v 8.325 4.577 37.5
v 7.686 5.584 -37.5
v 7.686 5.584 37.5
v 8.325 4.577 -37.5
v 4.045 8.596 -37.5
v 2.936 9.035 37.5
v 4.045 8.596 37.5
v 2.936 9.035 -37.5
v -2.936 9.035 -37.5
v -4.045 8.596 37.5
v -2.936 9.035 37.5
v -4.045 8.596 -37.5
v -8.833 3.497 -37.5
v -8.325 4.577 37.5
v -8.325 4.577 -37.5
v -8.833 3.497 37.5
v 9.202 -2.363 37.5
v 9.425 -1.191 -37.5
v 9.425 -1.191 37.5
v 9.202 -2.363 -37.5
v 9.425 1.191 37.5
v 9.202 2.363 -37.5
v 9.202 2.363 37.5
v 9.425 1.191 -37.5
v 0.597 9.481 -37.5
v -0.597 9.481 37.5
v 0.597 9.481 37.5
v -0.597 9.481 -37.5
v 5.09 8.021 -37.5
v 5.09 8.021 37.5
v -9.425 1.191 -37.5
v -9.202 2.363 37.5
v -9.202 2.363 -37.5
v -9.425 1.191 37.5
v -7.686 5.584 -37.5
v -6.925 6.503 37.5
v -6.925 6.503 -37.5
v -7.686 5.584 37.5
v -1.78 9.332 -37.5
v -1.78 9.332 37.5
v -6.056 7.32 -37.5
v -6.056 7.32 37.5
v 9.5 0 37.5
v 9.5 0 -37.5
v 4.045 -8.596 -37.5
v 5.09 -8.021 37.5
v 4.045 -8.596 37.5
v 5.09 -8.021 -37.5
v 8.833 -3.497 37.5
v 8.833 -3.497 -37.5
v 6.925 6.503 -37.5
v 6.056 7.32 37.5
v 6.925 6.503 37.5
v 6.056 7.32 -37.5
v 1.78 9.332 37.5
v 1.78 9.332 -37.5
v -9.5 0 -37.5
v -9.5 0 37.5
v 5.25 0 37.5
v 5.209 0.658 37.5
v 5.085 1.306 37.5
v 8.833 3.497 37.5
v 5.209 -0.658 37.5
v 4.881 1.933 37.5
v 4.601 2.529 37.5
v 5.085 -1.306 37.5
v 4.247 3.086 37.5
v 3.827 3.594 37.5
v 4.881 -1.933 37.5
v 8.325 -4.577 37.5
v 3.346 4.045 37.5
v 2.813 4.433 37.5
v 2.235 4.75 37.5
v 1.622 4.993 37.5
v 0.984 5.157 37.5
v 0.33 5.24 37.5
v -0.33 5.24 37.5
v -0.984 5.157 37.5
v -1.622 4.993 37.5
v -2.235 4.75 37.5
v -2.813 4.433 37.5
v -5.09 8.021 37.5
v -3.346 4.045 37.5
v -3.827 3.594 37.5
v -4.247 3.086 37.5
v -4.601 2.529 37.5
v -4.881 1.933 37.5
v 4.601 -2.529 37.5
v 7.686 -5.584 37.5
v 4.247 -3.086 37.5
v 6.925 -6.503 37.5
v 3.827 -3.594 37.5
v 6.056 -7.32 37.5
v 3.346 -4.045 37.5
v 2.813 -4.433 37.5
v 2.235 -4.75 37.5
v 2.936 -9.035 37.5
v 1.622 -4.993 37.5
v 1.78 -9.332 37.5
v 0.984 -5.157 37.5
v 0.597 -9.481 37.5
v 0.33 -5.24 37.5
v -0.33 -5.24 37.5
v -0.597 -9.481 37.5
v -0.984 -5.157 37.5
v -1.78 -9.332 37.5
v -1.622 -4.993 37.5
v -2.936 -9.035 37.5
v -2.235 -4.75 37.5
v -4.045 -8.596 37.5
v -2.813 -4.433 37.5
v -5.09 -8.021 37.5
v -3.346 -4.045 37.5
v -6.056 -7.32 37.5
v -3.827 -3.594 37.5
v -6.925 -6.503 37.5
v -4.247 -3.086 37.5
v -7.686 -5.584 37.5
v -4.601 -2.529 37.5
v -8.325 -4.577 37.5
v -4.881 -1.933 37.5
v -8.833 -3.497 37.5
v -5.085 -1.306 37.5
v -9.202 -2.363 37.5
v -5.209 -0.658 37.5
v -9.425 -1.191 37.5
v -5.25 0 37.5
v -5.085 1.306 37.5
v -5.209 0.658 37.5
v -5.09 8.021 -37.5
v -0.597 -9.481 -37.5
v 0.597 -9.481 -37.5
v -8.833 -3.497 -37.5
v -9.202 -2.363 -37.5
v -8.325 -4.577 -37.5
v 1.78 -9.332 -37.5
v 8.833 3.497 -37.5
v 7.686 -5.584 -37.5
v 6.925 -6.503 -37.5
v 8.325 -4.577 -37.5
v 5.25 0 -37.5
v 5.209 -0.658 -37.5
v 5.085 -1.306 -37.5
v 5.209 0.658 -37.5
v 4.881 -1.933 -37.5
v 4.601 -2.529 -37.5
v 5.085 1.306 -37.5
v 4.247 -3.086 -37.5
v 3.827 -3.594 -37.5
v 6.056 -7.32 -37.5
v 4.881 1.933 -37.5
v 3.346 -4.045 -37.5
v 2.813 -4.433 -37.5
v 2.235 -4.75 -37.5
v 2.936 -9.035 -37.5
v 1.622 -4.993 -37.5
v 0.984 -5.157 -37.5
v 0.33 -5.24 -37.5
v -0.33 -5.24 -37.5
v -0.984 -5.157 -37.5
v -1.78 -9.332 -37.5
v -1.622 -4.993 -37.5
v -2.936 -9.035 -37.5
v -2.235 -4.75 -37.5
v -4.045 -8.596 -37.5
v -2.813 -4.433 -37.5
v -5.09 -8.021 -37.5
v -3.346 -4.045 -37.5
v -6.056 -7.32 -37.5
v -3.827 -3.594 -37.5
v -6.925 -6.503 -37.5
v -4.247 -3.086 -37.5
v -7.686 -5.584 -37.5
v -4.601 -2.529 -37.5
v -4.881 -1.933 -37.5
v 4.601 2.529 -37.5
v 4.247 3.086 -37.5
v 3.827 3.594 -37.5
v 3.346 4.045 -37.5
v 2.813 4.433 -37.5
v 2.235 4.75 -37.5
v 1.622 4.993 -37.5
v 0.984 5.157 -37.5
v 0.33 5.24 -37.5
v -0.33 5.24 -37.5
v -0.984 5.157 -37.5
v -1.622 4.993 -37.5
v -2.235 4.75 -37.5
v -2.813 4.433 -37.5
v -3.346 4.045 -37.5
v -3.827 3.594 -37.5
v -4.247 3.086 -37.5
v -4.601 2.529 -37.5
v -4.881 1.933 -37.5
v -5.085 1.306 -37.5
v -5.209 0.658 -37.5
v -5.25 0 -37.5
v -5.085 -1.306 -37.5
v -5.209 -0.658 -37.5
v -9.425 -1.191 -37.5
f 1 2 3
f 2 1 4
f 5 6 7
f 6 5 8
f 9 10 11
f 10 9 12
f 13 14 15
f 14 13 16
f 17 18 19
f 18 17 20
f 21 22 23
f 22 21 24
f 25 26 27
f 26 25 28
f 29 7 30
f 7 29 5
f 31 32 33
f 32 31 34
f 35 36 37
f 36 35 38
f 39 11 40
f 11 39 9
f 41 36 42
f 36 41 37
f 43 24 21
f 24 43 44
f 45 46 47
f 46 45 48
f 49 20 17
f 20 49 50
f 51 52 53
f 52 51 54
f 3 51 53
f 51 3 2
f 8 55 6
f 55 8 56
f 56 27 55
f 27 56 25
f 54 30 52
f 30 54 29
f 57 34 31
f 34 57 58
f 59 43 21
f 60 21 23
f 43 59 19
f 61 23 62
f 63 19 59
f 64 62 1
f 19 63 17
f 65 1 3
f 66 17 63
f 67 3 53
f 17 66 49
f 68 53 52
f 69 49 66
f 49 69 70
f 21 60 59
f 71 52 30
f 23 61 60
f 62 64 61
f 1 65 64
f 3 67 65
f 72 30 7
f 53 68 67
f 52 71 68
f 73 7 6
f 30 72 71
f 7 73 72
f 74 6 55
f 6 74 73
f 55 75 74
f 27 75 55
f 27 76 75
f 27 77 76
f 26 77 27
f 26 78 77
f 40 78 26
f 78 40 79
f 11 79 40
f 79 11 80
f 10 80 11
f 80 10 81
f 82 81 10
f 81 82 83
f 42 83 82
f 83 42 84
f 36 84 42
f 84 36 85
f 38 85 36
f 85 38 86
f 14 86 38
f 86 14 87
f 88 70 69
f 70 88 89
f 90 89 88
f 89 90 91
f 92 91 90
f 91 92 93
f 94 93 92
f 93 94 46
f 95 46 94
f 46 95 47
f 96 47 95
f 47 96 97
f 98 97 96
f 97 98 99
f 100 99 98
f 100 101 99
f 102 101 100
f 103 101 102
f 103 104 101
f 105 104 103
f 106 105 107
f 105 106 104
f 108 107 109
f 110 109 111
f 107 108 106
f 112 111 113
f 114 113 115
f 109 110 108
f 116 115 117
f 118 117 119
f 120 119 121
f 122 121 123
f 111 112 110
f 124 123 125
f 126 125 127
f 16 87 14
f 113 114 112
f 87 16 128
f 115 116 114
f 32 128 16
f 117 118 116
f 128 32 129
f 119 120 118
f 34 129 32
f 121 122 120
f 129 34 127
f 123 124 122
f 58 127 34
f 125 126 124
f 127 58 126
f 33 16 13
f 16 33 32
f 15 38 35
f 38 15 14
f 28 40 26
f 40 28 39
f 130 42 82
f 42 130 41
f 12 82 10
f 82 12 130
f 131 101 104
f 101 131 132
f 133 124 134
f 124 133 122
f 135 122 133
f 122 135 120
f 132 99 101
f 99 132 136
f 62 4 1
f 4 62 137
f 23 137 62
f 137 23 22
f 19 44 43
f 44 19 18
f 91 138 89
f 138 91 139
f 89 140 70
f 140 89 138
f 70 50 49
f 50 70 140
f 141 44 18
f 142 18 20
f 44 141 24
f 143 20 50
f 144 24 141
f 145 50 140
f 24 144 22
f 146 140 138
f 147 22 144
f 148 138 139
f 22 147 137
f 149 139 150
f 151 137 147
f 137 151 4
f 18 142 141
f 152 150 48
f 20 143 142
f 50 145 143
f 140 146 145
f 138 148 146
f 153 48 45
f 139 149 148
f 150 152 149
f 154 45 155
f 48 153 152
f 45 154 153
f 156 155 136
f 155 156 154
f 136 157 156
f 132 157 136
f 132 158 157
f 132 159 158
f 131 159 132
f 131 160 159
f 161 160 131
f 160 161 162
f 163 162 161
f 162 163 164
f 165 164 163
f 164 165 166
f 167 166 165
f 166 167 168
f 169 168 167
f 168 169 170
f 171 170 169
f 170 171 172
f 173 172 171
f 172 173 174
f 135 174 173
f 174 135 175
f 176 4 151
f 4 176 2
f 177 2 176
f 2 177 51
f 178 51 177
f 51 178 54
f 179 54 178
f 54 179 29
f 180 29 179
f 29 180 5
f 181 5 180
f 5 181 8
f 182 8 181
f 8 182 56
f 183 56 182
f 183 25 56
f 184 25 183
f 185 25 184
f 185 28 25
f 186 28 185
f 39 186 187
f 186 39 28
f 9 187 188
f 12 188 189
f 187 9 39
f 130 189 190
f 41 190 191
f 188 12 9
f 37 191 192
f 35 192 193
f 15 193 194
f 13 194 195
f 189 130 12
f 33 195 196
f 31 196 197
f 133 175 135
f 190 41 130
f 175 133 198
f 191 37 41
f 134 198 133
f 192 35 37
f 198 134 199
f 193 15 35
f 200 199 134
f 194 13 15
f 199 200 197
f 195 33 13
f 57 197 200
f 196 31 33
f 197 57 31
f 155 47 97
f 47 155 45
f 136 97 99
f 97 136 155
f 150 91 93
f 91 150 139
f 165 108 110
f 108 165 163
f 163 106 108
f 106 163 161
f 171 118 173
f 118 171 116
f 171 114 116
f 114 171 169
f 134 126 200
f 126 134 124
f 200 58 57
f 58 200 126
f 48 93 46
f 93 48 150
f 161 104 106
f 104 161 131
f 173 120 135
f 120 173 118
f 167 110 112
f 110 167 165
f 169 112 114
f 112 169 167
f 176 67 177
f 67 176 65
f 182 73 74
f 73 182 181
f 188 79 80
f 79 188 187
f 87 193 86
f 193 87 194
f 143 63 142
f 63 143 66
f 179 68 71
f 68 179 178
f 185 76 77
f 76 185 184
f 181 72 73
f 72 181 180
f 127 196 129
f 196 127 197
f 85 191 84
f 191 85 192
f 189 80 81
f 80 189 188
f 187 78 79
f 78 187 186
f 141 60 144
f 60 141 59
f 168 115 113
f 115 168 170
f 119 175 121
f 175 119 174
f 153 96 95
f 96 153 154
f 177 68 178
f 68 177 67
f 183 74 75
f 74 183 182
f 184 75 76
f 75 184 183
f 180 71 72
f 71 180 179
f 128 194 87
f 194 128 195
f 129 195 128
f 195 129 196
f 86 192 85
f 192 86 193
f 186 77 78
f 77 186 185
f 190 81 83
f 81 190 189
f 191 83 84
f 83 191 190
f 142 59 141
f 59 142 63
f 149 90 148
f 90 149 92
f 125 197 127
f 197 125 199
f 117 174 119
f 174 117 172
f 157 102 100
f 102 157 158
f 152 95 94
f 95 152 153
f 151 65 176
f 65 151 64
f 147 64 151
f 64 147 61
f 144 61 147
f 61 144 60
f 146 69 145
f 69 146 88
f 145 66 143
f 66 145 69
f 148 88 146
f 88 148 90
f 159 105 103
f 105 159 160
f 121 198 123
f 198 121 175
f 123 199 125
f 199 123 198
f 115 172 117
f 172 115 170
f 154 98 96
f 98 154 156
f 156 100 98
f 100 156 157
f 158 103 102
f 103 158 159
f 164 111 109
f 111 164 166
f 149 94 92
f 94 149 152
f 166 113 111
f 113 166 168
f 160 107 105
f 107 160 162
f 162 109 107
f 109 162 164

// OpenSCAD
$fn = 50;


difference() {
	union() {
		translate(v = [0, 0, -37.5000000000]) {
			cylinder(h = 75, r = 9.5000000000);
		}
	}
	union() {
		translate(v = [0, 0, -100.0000000000]) {
			cylinder(h = 200, r = 5.2500000000);
		}
	}
}
